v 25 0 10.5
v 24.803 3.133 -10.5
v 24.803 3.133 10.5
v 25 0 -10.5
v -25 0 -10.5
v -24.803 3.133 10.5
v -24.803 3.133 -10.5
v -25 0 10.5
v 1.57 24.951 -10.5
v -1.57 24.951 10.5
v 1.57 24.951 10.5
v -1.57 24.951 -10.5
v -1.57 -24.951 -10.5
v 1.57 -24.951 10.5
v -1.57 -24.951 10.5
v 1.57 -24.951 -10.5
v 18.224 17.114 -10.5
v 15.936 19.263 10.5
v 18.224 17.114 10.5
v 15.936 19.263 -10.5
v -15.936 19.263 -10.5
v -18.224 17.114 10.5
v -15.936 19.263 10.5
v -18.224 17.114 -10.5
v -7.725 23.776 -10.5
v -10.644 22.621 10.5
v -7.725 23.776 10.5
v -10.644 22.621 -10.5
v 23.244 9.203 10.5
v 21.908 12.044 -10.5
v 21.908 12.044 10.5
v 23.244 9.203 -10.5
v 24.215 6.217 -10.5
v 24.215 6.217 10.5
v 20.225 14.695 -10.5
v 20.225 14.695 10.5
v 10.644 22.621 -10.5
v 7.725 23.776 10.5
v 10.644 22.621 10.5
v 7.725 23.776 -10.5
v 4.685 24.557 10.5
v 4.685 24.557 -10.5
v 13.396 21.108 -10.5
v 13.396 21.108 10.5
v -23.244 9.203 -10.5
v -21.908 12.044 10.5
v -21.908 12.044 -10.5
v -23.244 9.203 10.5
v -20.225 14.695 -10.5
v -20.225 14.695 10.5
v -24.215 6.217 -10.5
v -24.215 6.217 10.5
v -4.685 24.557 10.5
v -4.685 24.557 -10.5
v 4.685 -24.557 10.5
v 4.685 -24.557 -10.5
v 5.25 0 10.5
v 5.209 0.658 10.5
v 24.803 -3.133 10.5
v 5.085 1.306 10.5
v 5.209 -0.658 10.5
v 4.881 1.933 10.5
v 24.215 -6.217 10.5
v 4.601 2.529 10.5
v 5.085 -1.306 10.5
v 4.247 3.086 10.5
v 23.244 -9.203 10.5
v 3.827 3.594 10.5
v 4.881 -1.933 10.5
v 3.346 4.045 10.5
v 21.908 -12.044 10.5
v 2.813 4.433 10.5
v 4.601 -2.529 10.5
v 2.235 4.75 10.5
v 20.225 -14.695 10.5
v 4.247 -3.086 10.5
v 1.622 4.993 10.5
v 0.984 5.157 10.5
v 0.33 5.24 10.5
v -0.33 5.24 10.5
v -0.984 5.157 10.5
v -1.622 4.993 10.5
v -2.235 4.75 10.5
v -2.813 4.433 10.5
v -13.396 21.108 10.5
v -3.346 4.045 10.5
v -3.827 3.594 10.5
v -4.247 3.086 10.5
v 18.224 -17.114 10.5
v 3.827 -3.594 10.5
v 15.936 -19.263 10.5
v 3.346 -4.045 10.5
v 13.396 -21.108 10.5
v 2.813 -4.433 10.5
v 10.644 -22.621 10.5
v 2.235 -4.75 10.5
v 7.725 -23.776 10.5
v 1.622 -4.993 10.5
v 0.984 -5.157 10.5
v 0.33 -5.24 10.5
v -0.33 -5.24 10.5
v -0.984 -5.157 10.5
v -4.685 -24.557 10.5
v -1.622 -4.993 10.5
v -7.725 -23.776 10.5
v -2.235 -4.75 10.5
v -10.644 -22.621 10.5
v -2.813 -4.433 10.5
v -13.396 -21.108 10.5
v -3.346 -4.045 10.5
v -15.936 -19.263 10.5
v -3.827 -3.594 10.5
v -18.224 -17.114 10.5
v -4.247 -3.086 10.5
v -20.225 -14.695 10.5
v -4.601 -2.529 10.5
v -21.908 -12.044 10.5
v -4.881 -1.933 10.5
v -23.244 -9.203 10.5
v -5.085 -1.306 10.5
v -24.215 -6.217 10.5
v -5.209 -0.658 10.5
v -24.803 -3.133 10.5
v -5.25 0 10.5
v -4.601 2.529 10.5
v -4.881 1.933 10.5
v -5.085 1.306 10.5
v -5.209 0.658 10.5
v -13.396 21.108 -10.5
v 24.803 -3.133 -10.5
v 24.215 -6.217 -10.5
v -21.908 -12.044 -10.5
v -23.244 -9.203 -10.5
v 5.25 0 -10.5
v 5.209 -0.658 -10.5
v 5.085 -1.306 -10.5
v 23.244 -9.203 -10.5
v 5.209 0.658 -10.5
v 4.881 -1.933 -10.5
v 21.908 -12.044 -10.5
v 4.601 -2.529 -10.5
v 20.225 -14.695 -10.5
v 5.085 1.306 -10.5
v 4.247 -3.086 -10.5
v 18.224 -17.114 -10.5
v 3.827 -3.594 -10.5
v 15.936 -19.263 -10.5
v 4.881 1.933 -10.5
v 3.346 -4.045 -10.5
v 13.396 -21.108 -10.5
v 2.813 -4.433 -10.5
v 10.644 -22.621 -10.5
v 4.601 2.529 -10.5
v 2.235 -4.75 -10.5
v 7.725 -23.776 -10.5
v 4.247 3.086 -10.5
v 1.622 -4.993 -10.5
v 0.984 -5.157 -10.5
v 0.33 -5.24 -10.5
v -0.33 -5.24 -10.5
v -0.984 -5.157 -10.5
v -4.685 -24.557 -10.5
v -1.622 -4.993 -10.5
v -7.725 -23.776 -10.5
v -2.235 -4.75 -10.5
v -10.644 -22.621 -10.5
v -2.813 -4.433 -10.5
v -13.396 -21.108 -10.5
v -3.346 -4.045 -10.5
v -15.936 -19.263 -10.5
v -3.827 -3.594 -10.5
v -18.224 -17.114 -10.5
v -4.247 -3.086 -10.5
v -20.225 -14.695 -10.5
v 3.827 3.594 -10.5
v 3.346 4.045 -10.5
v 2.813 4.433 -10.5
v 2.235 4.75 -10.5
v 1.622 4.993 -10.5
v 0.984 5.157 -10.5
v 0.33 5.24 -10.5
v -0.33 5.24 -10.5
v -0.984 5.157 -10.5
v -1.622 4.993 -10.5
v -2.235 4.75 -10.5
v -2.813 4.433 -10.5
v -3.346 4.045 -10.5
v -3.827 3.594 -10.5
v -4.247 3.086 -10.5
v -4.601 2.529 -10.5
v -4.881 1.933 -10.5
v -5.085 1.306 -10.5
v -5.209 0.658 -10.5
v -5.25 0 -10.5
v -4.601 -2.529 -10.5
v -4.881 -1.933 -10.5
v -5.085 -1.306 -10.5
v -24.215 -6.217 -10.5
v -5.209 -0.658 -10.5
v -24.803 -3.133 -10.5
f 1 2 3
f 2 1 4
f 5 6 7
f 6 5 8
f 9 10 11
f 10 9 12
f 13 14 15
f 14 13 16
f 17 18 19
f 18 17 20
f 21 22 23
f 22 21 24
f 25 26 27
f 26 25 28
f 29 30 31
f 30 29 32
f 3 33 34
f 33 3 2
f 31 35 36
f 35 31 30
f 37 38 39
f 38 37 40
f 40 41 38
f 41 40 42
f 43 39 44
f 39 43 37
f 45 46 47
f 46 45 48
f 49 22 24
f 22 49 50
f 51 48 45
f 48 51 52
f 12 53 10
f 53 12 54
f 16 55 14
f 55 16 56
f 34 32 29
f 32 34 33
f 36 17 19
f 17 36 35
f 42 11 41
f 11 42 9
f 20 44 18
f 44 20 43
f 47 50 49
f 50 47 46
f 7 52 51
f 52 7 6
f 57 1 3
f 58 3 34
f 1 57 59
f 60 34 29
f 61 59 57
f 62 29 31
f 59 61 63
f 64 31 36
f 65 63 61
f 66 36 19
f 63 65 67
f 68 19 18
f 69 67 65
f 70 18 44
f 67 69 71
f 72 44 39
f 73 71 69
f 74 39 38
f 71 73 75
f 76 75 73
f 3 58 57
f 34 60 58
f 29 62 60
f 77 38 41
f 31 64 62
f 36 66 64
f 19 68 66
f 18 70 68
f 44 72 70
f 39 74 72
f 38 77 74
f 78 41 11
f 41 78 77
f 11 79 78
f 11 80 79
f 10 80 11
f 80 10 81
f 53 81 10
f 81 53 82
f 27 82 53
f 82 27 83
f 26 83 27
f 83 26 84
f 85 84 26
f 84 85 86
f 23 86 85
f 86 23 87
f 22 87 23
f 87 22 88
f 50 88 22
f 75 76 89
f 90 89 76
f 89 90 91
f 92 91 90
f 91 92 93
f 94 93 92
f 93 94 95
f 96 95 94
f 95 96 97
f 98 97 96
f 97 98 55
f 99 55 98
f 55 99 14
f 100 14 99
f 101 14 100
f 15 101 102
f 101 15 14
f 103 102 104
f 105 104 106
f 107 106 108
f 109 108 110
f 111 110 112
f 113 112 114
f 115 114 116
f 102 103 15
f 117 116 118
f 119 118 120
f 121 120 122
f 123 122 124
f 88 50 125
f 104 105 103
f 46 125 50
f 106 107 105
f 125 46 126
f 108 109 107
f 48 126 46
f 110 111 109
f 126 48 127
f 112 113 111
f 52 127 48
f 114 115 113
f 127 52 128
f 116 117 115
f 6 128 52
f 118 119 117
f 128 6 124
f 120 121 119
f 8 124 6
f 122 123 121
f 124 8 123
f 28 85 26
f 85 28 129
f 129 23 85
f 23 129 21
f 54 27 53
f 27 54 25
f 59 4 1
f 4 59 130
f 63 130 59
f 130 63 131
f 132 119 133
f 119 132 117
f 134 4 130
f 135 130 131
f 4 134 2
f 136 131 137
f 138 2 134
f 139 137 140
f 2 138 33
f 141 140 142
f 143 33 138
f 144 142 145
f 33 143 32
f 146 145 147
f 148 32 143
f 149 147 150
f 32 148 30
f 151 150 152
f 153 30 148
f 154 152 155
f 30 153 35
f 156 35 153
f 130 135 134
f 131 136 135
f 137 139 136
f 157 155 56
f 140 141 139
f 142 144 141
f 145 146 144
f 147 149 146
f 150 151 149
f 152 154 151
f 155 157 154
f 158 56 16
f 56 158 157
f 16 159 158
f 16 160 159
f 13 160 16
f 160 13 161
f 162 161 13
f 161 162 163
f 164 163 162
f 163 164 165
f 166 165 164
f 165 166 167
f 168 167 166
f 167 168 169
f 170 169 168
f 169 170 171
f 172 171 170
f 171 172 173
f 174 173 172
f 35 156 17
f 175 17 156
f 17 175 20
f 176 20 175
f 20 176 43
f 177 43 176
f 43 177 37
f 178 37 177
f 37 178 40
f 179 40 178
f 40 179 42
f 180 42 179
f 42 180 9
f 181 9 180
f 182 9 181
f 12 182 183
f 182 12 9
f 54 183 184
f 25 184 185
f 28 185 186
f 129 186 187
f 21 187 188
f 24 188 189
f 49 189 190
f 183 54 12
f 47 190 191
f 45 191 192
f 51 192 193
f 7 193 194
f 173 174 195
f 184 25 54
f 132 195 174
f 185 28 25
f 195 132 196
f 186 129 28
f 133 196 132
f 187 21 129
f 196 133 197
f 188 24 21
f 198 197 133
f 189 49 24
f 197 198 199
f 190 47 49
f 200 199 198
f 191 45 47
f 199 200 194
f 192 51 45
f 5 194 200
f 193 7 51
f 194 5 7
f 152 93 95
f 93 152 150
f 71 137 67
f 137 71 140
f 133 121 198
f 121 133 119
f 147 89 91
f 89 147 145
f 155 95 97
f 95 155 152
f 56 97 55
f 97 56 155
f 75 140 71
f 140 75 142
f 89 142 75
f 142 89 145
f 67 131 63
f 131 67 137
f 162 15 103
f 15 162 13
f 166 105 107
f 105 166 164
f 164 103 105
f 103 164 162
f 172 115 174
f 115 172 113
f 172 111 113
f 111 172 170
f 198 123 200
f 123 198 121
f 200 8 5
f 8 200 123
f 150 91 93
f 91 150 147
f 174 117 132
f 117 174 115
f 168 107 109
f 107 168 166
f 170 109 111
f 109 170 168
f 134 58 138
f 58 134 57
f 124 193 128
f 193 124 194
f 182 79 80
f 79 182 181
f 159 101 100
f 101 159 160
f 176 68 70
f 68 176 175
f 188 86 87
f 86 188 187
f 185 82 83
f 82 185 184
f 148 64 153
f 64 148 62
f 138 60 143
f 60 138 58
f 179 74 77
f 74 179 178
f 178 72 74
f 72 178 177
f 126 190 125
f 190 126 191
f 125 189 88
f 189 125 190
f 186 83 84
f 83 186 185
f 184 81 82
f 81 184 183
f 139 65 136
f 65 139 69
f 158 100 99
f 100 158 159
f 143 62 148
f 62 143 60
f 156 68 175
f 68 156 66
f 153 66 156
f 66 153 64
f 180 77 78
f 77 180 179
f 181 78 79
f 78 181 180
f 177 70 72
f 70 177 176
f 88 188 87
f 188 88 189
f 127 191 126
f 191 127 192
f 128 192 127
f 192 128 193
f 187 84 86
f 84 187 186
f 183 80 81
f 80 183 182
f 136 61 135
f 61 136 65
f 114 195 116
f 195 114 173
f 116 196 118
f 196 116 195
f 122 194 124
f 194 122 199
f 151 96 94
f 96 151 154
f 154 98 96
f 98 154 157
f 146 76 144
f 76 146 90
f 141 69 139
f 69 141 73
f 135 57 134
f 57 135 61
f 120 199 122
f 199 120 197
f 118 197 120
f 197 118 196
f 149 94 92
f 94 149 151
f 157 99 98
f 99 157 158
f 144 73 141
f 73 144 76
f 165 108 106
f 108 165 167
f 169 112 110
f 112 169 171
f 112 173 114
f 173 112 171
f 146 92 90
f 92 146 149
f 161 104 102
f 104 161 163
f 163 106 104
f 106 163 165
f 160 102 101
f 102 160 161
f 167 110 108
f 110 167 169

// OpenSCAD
$fn = 50;


difference() {
	union() {
		translate(v = [0, 0, -10.5000000000]) {
			cylinder(h = 21, r = 25.0000000000);
		}
	}
	union() {
		translate(v = [0, 0, -100.0000000000]) {
			cylinder(h = 200, r = 5.2500000000);
		}
	}
}
